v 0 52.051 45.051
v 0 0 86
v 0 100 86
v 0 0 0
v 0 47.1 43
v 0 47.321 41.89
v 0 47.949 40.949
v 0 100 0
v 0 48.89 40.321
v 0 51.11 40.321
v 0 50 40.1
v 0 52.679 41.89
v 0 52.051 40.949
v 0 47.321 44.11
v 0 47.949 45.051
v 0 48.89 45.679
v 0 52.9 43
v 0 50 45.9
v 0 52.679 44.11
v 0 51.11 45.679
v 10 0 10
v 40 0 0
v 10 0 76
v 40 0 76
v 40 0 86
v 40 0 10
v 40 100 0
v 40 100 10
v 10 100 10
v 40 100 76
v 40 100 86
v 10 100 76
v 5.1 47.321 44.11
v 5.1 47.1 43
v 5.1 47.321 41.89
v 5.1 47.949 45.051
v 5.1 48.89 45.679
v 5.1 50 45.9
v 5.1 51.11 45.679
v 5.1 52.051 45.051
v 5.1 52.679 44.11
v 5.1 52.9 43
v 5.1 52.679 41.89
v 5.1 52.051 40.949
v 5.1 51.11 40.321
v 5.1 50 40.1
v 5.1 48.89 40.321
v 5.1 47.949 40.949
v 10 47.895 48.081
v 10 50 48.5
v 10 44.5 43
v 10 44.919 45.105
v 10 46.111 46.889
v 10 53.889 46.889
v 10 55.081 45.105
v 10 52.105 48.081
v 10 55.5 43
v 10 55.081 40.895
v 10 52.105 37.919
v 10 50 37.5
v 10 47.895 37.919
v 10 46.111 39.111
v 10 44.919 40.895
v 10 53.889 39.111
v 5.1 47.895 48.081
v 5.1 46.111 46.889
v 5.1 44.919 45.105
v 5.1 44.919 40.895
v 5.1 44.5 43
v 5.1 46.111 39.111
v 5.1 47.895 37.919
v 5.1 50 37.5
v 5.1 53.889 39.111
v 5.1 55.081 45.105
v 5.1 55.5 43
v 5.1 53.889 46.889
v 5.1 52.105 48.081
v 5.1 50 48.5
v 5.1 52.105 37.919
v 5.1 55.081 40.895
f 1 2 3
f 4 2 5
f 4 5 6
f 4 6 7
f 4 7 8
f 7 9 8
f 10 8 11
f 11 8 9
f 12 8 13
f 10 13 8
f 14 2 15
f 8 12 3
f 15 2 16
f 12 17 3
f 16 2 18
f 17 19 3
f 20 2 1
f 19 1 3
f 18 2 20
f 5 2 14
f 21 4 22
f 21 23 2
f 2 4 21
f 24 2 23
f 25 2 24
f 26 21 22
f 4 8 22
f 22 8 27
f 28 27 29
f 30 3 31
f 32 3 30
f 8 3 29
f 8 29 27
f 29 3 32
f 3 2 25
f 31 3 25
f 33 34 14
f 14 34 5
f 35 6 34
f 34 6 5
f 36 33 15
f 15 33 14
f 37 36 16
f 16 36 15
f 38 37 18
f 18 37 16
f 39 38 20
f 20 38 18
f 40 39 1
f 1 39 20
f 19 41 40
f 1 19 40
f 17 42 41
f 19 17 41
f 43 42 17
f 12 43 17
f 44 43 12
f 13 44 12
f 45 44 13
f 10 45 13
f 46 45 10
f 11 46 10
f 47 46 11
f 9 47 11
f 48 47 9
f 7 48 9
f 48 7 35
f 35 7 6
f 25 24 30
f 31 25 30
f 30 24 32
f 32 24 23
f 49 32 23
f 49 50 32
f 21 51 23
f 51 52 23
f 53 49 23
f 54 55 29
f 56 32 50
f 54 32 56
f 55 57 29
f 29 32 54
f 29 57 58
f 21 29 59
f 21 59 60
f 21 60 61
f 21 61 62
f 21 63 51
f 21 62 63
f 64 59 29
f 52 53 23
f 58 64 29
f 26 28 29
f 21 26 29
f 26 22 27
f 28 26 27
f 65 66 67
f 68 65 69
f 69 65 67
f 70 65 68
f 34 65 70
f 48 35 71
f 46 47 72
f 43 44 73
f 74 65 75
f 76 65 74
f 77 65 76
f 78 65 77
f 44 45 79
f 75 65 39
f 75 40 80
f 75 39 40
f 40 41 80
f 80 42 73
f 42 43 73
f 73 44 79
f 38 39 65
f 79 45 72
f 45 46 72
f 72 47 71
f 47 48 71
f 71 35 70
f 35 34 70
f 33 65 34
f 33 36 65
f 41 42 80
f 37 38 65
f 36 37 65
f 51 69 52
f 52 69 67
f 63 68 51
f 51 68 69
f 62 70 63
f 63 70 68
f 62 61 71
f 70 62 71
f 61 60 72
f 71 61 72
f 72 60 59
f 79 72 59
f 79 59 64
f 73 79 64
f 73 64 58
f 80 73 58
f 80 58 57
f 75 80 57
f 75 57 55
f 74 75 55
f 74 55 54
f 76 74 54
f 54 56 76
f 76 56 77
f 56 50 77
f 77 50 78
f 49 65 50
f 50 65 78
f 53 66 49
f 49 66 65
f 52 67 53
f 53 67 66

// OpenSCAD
difference() {
	cube( [ 40, 100, 66+20 ] );
	translate( [ 10, -1, 10 ] ) cube( [ 40, 102, 66 ] );	

	translate( [ -1, 100/2, (66+20)/2 ] )
	rotate( 90, [ 0, 1, 0 ] )
	cylinder( r=2.9, h=24, $fn=16 );	

	translate( [ 10-5+0.1, 100/2, (66+20)/2 ] )
	rotate( 90, [ 0, 1, 0 ] )
	cylinder( r=5.5, h=5, $fn=16 );	
}

*difference() {
	cube( [ 50, 50, 80 ] );
	translate( [ -1, -1, 10 ] ) cube( [ 50-6+1, 50+2, 80 ] );

	translate( [ 50-11, 50/2, (66+60)/2 ] )
	rotate( 90, [ 0, 1, 0 ] )
	cylinder( r=2.9, h=24, $fn=16 );	

	translate( [ 10, 10, -1 ] )
	cylinder( r=2.3, h=24, $fn=16 );	

	translate( [ 50-20, 10, -1 ] )
	cylinder( r=2.3, h=24, $fn=16 );	

	translate( [ 10, 50-10, -1 ] )
	cylinder( r=2.3, h=24, $fn=16 );	

	translate( [ 50-20, 50-10, -1 ] )
	cylinder( r=2.3, h=24, $fn=16 );	
}
